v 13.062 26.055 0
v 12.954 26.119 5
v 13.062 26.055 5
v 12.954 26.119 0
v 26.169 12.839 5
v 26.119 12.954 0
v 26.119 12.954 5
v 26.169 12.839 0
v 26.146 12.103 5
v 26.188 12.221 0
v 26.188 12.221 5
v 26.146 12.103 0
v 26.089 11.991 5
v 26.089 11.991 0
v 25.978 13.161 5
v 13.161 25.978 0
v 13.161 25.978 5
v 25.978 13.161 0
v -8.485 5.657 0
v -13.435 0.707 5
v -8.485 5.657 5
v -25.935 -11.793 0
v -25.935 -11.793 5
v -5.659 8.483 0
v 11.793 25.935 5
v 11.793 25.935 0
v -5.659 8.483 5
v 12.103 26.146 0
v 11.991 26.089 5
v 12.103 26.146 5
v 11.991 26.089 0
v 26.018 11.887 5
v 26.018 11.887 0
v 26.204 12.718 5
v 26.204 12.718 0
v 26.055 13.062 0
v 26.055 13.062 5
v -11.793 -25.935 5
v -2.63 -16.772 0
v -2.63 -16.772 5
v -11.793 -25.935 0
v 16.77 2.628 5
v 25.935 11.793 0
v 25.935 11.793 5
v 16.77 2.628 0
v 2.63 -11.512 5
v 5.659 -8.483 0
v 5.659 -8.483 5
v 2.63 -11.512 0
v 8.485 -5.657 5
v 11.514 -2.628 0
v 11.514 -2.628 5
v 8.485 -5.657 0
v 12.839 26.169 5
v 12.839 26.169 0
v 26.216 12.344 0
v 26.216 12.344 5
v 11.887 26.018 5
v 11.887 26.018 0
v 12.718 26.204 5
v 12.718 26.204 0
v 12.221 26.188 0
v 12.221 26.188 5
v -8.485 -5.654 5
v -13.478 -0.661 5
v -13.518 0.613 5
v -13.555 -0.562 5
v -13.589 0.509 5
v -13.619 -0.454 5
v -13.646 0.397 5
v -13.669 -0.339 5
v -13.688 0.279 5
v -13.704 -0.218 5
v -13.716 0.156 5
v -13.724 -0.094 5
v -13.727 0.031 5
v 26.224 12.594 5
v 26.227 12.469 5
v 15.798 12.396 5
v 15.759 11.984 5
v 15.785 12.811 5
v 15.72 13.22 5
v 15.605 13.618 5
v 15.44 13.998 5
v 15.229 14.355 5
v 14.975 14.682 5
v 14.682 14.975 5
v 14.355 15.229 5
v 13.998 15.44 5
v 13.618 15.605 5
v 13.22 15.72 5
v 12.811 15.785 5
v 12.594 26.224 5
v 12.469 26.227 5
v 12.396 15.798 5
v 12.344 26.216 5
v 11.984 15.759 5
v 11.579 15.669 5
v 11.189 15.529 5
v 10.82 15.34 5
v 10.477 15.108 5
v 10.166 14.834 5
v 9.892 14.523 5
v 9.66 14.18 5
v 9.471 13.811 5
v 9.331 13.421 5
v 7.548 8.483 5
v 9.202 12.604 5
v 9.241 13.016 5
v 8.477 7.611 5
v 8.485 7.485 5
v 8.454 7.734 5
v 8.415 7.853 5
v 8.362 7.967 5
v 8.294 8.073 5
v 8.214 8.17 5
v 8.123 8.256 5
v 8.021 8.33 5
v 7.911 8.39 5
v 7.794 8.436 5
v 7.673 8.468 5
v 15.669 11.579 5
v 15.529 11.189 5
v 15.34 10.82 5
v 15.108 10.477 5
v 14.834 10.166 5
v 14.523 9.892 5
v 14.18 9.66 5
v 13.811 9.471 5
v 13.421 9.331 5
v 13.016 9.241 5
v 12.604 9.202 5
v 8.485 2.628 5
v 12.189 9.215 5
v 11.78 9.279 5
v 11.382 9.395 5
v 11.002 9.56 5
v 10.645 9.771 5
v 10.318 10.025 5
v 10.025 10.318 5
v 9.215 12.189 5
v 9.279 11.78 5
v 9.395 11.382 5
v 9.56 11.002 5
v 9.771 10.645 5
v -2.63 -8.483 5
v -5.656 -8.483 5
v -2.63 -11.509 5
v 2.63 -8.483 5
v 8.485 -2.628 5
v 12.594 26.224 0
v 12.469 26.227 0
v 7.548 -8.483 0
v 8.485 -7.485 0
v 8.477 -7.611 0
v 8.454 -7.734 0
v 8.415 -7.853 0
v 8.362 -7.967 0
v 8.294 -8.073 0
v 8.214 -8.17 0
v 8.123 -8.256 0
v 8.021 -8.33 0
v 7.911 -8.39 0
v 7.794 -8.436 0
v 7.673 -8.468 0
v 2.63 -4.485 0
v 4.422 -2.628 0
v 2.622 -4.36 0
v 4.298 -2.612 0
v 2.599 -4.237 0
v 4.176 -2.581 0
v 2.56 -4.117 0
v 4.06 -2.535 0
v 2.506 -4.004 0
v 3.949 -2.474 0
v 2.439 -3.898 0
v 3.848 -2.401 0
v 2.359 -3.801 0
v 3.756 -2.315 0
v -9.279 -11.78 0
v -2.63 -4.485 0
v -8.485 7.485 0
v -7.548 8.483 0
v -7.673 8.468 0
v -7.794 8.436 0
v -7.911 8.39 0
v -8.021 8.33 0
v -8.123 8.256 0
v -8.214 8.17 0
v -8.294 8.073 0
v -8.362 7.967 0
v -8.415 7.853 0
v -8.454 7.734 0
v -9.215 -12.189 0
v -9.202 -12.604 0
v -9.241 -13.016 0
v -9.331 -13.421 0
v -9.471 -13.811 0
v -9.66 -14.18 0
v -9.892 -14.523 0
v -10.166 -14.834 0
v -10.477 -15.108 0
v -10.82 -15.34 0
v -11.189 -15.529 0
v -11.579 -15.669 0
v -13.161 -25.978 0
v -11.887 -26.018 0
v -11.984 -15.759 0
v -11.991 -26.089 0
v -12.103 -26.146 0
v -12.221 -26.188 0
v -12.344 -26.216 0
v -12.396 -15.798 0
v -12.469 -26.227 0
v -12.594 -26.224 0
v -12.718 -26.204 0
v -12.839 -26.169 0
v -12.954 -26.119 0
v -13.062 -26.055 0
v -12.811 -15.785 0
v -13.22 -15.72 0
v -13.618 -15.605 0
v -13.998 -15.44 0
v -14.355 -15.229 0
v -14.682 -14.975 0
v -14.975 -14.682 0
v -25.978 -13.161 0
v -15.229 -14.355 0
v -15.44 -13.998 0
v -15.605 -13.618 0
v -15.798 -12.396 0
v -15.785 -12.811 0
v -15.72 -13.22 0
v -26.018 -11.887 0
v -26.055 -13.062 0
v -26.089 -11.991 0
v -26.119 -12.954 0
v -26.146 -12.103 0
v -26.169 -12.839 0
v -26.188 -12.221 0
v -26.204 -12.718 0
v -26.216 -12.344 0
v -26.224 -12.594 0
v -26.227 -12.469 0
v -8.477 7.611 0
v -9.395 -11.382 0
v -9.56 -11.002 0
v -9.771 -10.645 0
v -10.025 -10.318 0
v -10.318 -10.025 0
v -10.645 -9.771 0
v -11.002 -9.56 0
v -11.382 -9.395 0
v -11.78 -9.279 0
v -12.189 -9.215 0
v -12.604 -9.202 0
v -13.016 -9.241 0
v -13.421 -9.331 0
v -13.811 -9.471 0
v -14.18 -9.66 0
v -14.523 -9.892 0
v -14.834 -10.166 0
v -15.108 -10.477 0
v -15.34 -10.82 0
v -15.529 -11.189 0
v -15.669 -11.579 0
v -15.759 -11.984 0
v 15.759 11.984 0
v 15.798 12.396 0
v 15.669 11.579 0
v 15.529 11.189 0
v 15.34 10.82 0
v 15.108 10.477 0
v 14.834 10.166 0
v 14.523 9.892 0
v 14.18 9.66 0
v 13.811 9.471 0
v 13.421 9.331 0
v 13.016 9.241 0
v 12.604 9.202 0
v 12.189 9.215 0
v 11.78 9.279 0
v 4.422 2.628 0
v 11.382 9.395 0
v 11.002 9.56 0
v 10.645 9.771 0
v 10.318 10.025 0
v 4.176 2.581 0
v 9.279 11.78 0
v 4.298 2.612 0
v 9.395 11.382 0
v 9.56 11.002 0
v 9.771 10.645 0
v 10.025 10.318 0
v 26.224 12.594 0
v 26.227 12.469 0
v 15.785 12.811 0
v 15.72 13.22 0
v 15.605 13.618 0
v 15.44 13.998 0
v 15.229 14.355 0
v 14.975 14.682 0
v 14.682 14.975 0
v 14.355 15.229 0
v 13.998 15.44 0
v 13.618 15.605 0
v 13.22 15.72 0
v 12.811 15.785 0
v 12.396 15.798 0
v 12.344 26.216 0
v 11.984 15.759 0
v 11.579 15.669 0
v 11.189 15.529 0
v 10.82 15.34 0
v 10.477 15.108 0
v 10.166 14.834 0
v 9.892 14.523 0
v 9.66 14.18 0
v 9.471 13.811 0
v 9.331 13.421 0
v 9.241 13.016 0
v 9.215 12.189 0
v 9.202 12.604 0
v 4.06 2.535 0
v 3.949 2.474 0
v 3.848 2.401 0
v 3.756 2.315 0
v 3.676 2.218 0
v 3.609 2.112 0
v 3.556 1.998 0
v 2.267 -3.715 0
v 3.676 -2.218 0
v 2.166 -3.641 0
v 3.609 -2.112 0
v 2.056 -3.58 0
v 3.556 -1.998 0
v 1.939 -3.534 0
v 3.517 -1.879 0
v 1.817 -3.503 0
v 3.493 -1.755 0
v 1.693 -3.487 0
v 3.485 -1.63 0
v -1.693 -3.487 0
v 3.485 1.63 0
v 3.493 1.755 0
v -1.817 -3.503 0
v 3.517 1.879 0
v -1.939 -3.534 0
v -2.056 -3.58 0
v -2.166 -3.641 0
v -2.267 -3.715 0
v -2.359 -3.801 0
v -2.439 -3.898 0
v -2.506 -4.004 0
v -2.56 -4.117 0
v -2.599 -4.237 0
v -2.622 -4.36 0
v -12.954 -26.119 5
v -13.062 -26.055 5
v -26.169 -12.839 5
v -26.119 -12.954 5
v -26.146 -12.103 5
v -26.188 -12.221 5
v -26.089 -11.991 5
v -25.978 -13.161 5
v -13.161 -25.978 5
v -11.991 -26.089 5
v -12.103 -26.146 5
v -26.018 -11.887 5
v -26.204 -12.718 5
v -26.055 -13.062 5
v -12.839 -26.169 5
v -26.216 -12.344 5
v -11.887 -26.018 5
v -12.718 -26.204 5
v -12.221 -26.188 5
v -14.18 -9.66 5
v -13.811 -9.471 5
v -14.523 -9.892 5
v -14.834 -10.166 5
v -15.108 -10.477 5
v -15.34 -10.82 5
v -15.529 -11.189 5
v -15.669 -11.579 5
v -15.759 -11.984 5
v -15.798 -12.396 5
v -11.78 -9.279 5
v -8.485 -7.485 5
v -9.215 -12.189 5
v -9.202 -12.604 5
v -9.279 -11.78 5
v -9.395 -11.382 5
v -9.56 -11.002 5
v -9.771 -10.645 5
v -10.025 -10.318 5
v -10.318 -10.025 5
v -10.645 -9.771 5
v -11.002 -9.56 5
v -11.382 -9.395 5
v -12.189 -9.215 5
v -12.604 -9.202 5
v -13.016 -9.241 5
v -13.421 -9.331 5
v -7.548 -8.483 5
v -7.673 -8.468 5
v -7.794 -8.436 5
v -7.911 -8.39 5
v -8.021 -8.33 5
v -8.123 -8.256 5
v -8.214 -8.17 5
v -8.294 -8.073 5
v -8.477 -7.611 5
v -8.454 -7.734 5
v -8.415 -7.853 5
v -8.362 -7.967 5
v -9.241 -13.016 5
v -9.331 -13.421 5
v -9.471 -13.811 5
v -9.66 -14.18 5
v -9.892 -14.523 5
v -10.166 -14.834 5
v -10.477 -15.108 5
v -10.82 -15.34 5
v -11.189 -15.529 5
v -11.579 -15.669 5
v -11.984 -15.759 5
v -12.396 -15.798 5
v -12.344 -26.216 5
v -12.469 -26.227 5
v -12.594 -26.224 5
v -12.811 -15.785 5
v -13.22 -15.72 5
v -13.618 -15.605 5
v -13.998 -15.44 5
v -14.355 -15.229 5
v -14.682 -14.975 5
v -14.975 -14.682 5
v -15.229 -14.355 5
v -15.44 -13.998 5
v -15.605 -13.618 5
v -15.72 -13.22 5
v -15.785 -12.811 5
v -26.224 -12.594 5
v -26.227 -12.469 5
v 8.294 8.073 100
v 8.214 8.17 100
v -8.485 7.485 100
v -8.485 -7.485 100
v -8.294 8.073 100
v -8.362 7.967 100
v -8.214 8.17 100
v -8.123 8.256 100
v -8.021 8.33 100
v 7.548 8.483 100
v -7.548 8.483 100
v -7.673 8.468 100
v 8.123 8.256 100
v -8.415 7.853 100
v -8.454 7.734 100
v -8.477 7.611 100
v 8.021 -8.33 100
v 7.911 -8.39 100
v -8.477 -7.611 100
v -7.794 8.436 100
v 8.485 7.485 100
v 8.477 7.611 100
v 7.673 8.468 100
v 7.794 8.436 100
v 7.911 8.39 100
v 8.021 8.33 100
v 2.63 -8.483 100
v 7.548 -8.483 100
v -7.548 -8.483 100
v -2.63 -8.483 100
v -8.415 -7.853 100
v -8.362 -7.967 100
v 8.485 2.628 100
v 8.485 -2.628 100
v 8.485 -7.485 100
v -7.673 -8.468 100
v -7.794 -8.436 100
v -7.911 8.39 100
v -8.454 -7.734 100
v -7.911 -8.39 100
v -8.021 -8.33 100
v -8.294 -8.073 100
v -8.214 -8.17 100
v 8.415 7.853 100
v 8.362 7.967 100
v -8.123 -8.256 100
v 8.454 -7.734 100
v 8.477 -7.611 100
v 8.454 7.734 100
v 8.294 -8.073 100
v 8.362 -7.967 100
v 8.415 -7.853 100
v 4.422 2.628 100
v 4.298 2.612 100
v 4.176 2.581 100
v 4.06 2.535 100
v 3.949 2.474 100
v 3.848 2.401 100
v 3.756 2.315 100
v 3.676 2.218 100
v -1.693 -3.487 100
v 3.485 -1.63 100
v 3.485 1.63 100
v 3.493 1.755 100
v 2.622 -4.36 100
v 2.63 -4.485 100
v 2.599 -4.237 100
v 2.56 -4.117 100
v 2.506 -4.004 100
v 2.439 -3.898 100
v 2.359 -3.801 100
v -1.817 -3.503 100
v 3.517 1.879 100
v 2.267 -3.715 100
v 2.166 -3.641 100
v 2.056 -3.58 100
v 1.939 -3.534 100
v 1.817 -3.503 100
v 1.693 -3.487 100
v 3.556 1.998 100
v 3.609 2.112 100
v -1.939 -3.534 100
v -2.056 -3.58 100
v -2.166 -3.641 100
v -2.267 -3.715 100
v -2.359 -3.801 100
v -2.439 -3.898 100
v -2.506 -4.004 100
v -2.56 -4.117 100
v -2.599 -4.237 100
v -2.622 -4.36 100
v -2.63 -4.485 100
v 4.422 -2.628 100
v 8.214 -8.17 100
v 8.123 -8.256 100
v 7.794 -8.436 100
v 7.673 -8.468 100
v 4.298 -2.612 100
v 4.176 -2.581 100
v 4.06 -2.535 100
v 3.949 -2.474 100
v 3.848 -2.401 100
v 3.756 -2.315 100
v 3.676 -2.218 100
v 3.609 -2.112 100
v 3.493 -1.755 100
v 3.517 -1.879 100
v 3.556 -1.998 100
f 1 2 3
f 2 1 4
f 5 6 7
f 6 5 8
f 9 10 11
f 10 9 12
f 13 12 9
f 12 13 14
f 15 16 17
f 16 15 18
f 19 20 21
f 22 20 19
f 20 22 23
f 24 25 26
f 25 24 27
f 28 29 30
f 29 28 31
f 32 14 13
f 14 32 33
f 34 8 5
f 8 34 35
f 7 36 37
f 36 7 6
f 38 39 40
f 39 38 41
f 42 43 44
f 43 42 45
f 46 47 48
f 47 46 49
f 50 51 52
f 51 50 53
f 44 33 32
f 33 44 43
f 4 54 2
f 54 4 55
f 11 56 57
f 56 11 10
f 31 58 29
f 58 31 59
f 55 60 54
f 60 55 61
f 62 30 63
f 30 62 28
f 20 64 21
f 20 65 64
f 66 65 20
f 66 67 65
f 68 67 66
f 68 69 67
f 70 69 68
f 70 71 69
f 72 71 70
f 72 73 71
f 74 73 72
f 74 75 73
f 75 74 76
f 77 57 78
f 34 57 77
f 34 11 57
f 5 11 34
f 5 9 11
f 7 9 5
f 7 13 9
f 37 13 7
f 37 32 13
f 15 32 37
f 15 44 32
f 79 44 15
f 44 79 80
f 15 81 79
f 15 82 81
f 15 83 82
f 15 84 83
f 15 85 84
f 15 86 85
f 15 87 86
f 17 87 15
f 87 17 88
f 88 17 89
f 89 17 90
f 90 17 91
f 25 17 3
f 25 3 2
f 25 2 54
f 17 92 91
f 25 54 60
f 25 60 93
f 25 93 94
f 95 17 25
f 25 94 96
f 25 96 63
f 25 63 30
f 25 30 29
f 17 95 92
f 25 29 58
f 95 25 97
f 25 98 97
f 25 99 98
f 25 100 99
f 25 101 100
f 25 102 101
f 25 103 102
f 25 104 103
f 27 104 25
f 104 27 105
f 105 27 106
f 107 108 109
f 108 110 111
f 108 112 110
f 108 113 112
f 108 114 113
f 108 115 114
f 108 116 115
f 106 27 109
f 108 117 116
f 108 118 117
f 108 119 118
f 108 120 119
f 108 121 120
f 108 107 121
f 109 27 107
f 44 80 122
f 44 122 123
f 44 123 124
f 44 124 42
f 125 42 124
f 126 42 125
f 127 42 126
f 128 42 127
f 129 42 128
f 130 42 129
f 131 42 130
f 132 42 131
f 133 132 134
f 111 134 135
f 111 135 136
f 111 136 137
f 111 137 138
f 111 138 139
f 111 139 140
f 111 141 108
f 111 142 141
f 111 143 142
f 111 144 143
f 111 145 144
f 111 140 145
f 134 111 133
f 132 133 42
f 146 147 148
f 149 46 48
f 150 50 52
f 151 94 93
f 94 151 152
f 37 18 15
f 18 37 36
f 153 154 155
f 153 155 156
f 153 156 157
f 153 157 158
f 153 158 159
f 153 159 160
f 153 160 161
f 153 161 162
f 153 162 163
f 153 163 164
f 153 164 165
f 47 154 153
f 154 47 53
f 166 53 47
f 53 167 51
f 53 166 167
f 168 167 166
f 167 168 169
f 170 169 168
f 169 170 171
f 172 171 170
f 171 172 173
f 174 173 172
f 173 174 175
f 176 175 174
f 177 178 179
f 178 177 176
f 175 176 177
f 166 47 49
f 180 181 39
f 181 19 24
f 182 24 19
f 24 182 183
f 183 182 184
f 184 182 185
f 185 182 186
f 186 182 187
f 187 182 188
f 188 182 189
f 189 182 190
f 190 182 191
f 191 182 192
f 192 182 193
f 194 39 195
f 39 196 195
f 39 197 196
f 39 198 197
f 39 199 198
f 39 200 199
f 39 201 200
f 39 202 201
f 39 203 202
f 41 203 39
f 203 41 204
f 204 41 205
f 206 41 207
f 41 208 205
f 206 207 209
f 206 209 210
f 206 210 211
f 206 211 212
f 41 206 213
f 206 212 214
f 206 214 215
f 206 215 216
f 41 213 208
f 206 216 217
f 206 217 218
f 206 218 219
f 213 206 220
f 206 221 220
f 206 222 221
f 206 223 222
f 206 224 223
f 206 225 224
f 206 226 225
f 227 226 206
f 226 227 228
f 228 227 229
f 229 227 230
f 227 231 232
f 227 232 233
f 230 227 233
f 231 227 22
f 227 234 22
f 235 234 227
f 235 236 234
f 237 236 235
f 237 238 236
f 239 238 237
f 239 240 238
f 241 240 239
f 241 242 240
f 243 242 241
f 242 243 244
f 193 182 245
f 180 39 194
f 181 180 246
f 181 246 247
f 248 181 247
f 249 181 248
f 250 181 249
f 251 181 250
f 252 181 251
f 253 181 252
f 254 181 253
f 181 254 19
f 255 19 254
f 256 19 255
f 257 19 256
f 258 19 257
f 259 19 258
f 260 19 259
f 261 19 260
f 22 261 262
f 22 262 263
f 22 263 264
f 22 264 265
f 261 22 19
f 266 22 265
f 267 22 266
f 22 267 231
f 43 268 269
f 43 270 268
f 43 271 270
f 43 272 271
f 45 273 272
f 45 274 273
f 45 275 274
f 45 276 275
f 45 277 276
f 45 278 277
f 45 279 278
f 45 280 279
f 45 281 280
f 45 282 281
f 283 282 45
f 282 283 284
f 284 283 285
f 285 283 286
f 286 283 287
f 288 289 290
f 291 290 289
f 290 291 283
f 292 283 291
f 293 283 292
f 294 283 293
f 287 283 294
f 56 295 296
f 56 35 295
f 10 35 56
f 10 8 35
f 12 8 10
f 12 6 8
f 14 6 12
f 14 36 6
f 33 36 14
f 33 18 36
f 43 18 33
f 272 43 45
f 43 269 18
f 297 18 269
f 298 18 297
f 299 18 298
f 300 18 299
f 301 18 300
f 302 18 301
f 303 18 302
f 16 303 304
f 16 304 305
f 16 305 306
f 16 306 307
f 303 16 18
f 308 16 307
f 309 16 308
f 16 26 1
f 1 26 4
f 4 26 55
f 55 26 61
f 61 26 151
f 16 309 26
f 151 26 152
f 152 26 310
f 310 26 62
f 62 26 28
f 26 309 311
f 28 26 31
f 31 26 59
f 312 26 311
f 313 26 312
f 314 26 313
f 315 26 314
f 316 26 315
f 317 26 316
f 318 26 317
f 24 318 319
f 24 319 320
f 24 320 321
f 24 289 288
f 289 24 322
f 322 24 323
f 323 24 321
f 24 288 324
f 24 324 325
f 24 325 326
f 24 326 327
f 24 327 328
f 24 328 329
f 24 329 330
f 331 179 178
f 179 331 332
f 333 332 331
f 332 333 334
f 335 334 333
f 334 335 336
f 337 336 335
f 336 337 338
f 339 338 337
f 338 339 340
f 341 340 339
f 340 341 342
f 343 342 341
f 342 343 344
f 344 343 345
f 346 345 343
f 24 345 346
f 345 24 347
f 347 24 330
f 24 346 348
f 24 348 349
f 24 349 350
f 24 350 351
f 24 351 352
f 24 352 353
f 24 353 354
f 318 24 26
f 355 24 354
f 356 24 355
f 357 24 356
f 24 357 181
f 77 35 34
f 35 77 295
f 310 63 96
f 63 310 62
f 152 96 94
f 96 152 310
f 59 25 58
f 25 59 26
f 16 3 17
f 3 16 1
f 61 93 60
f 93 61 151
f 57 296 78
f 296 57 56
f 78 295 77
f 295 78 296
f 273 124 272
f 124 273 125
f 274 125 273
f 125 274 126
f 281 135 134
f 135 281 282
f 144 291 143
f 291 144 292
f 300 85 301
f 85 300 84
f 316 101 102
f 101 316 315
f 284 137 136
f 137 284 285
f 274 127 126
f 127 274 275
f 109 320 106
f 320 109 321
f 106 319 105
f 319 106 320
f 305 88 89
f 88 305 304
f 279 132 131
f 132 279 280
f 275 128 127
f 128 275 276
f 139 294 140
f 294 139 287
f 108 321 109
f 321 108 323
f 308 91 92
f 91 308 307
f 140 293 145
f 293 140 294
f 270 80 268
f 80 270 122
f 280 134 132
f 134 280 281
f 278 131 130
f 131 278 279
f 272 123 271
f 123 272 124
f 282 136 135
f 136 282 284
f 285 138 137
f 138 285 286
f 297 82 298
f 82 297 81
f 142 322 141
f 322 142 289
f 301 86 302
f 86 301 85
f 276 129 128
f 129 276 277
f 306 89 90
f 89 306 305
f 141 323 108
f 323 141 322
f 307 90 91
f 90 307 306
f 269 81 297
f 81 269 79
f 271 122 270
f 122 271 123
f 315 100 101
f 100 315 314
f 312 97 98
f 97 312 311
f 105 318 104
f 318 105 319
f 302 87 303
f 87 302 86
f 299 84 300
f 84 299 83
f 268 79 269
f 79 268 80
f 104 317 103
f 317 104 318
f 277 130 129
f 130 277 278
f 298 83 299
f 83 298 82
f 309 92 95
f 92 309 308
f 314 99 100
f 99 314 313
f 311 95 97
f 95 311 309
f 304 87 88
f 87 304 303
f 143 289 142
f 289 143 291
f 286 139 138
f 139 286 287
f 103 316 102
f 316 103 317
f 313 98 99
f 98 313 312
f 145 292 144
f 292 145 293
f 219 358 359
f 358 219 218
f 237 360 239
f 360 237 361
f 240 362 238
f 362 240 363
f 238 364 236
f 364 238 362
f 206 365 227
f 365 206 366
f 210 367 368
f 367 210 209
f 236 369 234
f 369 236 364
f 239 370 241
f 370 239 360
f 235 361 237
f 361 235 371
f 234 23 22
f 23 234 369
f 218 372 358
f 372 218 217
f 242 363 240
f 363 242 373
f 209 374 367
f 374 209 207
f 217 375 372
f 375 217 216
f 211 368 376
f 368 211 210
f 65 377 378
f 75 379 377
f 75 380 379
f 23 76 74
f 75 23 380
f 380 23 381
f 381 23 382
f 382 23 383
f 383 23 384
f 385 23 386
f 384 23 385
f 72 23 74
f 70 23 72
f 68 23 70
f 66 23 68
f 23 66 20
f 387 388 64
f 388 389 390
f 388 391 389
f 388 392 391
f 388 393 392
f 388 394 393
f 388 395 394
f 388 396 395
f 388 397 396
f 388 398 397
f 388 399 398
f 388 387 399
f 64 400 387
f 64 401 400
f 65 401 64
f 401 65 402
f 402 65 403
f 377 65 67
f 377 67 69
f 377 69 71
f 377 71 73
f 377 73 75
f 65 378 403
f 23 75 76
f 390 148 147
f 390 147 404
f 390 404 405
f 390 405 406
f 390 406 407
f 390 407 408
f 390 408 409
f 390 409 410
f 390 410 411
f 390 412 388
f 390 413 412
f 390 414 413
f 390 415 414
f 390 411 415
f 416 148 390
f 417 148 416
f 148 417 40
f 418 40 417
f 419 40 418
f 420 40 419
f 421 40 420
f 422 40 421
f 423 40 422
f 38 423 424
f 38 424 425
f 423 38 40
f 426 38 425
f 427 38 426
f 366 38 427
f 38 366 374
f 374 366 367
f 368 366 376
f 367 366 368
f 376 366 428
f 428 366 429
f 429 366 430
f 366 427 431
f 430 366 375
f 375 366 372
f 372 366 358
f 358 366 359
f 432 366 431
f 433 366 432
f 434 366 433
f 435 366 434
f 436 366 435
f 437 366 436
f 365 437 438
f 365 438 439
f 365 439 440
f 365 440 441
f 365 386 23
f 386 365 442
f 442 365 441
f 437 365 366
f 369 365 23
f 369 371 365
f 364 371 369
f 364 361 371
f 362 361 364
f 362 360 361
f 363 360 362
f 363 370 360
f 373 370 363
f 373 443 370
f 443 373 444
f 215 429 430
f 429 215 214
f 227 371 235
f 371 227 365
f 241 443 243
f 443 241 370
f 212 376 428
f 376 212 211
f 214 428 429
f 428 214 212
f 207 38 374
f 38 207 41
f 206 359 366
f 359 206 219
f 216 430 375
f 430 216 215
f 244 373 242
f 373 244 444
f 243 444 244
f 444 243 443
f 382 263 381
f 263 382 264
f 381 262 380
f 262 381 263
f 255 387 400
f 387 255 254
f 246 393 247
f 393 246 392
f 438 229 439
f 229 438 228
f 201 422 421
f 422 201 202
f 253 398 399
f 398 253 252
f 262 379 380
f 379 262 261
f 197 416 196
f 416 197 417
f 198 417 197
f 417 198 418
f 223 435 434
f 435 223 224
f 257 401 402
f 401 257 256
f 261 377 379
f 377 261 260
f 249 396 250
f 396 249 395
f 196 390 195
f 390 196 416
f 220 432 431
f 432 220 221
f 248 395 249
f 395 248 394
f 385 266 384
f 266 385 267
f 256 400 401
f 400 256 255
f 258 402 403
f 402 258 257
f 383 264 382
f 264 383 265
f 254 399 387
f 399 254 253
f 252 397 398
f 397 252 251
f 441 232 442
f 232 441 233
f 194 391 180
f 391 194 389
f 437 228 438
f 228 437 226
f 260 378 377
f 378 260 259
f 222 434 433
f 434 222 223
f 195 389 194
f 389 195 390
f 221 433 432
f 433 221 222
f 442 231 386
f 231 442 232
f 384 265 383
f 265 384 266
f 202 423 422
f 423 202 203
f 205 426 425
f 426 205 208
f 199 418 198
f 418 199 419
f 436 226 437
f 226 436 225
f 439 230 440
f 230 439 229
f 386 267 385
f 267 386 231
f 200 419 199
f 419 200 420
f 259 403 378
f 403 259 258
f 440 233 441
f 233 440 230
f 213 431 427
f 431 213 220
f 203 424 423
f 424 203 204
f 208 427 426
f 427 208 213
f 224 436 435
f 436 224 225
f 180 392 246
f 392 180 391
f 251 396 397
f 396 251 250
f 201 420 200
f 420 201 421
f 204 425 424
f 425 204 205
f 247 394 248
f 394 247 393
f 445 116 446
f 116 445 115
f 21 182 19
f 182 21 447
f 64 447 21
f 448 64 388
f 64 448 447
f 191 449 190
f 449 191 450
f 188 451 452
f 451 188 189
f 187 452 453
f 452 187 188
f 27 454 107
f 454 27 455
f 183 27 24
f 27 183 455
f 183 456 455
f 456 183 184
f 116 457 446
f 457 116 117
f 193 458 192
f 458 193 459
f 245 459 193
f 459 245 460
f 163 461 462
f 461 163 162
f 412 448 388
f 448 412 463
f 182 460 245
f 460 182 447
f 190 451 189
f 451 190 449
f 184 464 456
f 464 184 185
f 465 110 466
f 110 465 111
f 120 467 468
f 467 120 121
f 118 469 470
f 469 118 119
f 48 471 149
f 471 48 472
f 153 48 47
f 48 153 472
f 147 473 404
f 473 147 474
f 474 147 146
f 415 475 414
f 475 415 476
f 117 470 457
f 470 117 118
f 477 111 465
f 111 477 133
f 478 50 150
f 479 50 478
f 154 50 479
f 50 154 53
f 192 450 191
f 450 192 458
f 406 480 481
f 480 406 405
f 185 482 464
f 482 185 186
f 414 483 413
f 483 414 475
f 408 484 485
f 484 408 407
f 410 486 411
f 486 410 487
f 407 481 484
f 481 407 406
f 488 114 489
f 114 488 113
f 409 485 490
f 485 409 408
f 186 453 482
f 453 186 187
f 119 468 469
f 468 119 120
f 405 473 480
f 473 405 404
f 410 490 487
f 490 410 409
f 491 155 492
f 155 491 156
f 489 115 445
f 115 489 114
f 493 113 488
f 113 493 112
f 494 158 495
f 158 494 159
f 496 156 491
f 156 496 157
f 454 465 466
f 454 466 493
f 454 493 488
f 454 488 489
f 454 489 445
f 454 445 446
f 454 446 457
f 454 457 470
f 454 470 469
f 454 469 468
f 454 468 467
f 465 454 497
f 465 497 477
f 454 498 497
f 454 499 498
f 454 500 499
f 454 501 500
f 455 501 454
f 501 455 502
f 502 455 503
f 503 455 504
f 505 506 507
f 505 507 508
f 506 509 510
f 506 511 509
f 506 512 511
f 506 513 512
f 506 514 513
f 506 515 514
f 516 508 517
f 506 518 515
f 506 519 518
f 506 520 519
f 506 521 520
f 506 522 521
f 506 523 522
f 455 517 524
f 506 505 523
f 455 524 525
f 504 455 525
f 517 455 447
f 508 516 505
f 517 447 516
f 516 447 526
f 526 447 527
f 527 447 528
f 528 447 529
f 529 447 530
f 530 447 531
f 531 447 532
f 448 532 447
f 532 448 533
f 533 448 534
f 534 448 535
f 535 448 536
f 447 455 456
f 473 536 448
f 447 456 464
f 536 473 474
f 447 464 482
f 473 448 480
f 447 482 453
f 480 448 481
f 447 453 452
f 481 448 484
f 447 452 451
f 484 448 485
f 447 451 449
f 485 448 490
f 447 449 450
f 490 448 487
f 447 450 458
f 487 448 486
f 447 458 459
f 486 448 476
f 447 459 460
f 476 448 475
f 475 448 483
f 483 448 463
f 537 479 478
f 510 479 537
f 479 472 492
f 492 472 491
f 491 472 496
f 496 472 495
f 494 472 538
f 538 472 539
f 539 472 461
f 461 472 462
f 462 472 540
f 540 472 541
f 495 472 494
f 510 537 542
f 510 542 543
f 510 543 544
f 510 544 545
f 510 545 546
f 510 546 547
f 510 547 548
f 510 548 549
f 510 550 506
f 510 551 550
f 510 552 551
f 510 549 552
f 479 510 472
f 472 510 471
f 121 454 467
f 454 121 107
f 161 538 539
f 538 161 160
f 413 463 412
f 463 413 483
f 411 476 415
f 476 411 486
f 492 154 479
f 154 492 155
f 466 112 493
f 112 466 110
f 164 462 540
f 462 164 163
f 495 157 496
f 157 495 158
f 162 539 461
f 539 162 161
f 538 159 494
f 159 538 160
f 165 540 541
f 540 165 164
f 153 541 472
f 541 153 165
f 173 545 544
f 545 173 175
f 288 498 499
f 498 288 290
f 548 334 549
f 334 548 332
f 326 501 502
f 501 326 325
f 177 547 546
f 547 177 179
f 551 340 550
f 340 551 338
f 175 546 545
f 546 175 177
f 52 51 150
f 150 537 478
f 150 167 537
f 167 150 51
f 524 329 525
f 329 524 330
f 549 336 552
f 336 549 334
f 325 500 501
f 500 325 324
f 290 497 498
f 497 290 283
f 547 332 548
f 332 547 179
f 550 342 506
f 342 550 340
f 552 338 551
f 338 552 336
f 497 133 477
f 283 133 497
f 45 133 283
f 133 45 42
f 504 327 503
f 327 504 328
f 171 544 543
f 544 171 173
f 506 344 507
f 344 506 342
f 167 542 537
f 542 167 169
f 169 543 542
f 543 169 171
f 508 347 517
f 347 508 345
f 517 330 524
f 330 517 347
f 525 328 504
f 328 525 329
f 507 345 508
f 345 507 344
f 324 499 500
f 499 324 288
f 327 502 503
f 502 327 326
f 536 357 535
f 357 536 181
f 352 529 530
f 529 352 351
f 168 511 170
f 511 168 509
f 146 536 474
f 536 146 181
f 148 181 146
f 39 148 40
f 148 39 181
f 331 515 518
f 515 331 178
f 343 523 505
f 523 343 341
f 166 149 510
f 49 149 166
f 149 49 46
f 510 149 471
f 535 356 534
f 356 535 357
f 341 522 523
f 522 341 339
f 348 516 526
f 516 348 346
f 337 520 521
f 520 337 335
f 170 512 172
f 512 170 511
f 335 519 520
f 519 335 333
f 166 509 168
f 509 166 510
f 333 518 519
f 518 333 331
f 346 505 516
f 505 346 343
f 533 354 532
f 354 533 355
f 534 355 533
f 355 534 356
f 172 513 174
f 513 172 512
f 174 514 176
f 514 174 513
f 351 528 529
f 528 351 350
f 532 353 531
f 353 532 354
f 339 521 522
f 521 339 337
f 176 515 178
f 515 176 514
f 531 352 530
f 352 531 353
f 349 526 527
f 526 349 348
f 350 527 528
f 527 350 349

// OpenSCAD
module roundedBox(w=10, h=10, d=10, r=2){
    translate([-(w-2*r)/2,-(h-2*r)/2,0]) {
        minkowski(){
            cylinder(r,r,r);
            cube([w-2*r, h-2*r, d-r]);
        }
    }
}

module baseplate(baseWidth=20, holeSpacing=6, baseThickness=5, roundRadius=2){
    translate([0,holeSpacing/2,0]){
        difference(){
            roundedBox(baseWidth,holeSpacing+baseWidth,baseThickness,roundRadius);
            union(){
                translate([0,holeSpacing/2,-2]) cylinder(baseThickness*2,clearanceHole/2,clearanceHole/2);
                }
            }
    }
}


$fn = 50;
// ----- Parameters (all in mm) -----
holeSpacing = 25; // standard metric Thorlabs optical table
clearanceHole = 6.6; // for M6 screws
baseWidth = 20;
baseThickness = 5;
pilarWidth = 12*sqrt(2);
pilarHeight = 100;
roundRadius = 1;
boardThickness = 4.76; // thickness of the cardboard/plastic board to be used
slotDepth = 5;

difference(){
    union(){
        union(){
            rotate(-45, [0,0,1]) baseplate(baseWidth, sqrt(2)*holeSpacing/2, baseThickness, roundRadius);
            rotate(-225, [0,0,1]) baseplate(baseWidth, sqrt(2)*holeSpacing/2, baseThickness, roundRadius);

        }
        roundedBox(pilarWidth,pilarWidth,pilarHeight, roundRadius);
        }
    union(){
        translate([3*slotDepth/2+pilarWidth/2-slotDepth,0,-2]) roundedBox(3*slotDepth, boardThickness+0.5,pilarHeight+4,roundRadius);
        translate([0,-(3*slotDepth/2+pilarWidth/2-slotDepth),-2]) roundedBox(boardThickness+0.5,3*slotDepth, pilarHeight+4,roundRadius);
        }
}
